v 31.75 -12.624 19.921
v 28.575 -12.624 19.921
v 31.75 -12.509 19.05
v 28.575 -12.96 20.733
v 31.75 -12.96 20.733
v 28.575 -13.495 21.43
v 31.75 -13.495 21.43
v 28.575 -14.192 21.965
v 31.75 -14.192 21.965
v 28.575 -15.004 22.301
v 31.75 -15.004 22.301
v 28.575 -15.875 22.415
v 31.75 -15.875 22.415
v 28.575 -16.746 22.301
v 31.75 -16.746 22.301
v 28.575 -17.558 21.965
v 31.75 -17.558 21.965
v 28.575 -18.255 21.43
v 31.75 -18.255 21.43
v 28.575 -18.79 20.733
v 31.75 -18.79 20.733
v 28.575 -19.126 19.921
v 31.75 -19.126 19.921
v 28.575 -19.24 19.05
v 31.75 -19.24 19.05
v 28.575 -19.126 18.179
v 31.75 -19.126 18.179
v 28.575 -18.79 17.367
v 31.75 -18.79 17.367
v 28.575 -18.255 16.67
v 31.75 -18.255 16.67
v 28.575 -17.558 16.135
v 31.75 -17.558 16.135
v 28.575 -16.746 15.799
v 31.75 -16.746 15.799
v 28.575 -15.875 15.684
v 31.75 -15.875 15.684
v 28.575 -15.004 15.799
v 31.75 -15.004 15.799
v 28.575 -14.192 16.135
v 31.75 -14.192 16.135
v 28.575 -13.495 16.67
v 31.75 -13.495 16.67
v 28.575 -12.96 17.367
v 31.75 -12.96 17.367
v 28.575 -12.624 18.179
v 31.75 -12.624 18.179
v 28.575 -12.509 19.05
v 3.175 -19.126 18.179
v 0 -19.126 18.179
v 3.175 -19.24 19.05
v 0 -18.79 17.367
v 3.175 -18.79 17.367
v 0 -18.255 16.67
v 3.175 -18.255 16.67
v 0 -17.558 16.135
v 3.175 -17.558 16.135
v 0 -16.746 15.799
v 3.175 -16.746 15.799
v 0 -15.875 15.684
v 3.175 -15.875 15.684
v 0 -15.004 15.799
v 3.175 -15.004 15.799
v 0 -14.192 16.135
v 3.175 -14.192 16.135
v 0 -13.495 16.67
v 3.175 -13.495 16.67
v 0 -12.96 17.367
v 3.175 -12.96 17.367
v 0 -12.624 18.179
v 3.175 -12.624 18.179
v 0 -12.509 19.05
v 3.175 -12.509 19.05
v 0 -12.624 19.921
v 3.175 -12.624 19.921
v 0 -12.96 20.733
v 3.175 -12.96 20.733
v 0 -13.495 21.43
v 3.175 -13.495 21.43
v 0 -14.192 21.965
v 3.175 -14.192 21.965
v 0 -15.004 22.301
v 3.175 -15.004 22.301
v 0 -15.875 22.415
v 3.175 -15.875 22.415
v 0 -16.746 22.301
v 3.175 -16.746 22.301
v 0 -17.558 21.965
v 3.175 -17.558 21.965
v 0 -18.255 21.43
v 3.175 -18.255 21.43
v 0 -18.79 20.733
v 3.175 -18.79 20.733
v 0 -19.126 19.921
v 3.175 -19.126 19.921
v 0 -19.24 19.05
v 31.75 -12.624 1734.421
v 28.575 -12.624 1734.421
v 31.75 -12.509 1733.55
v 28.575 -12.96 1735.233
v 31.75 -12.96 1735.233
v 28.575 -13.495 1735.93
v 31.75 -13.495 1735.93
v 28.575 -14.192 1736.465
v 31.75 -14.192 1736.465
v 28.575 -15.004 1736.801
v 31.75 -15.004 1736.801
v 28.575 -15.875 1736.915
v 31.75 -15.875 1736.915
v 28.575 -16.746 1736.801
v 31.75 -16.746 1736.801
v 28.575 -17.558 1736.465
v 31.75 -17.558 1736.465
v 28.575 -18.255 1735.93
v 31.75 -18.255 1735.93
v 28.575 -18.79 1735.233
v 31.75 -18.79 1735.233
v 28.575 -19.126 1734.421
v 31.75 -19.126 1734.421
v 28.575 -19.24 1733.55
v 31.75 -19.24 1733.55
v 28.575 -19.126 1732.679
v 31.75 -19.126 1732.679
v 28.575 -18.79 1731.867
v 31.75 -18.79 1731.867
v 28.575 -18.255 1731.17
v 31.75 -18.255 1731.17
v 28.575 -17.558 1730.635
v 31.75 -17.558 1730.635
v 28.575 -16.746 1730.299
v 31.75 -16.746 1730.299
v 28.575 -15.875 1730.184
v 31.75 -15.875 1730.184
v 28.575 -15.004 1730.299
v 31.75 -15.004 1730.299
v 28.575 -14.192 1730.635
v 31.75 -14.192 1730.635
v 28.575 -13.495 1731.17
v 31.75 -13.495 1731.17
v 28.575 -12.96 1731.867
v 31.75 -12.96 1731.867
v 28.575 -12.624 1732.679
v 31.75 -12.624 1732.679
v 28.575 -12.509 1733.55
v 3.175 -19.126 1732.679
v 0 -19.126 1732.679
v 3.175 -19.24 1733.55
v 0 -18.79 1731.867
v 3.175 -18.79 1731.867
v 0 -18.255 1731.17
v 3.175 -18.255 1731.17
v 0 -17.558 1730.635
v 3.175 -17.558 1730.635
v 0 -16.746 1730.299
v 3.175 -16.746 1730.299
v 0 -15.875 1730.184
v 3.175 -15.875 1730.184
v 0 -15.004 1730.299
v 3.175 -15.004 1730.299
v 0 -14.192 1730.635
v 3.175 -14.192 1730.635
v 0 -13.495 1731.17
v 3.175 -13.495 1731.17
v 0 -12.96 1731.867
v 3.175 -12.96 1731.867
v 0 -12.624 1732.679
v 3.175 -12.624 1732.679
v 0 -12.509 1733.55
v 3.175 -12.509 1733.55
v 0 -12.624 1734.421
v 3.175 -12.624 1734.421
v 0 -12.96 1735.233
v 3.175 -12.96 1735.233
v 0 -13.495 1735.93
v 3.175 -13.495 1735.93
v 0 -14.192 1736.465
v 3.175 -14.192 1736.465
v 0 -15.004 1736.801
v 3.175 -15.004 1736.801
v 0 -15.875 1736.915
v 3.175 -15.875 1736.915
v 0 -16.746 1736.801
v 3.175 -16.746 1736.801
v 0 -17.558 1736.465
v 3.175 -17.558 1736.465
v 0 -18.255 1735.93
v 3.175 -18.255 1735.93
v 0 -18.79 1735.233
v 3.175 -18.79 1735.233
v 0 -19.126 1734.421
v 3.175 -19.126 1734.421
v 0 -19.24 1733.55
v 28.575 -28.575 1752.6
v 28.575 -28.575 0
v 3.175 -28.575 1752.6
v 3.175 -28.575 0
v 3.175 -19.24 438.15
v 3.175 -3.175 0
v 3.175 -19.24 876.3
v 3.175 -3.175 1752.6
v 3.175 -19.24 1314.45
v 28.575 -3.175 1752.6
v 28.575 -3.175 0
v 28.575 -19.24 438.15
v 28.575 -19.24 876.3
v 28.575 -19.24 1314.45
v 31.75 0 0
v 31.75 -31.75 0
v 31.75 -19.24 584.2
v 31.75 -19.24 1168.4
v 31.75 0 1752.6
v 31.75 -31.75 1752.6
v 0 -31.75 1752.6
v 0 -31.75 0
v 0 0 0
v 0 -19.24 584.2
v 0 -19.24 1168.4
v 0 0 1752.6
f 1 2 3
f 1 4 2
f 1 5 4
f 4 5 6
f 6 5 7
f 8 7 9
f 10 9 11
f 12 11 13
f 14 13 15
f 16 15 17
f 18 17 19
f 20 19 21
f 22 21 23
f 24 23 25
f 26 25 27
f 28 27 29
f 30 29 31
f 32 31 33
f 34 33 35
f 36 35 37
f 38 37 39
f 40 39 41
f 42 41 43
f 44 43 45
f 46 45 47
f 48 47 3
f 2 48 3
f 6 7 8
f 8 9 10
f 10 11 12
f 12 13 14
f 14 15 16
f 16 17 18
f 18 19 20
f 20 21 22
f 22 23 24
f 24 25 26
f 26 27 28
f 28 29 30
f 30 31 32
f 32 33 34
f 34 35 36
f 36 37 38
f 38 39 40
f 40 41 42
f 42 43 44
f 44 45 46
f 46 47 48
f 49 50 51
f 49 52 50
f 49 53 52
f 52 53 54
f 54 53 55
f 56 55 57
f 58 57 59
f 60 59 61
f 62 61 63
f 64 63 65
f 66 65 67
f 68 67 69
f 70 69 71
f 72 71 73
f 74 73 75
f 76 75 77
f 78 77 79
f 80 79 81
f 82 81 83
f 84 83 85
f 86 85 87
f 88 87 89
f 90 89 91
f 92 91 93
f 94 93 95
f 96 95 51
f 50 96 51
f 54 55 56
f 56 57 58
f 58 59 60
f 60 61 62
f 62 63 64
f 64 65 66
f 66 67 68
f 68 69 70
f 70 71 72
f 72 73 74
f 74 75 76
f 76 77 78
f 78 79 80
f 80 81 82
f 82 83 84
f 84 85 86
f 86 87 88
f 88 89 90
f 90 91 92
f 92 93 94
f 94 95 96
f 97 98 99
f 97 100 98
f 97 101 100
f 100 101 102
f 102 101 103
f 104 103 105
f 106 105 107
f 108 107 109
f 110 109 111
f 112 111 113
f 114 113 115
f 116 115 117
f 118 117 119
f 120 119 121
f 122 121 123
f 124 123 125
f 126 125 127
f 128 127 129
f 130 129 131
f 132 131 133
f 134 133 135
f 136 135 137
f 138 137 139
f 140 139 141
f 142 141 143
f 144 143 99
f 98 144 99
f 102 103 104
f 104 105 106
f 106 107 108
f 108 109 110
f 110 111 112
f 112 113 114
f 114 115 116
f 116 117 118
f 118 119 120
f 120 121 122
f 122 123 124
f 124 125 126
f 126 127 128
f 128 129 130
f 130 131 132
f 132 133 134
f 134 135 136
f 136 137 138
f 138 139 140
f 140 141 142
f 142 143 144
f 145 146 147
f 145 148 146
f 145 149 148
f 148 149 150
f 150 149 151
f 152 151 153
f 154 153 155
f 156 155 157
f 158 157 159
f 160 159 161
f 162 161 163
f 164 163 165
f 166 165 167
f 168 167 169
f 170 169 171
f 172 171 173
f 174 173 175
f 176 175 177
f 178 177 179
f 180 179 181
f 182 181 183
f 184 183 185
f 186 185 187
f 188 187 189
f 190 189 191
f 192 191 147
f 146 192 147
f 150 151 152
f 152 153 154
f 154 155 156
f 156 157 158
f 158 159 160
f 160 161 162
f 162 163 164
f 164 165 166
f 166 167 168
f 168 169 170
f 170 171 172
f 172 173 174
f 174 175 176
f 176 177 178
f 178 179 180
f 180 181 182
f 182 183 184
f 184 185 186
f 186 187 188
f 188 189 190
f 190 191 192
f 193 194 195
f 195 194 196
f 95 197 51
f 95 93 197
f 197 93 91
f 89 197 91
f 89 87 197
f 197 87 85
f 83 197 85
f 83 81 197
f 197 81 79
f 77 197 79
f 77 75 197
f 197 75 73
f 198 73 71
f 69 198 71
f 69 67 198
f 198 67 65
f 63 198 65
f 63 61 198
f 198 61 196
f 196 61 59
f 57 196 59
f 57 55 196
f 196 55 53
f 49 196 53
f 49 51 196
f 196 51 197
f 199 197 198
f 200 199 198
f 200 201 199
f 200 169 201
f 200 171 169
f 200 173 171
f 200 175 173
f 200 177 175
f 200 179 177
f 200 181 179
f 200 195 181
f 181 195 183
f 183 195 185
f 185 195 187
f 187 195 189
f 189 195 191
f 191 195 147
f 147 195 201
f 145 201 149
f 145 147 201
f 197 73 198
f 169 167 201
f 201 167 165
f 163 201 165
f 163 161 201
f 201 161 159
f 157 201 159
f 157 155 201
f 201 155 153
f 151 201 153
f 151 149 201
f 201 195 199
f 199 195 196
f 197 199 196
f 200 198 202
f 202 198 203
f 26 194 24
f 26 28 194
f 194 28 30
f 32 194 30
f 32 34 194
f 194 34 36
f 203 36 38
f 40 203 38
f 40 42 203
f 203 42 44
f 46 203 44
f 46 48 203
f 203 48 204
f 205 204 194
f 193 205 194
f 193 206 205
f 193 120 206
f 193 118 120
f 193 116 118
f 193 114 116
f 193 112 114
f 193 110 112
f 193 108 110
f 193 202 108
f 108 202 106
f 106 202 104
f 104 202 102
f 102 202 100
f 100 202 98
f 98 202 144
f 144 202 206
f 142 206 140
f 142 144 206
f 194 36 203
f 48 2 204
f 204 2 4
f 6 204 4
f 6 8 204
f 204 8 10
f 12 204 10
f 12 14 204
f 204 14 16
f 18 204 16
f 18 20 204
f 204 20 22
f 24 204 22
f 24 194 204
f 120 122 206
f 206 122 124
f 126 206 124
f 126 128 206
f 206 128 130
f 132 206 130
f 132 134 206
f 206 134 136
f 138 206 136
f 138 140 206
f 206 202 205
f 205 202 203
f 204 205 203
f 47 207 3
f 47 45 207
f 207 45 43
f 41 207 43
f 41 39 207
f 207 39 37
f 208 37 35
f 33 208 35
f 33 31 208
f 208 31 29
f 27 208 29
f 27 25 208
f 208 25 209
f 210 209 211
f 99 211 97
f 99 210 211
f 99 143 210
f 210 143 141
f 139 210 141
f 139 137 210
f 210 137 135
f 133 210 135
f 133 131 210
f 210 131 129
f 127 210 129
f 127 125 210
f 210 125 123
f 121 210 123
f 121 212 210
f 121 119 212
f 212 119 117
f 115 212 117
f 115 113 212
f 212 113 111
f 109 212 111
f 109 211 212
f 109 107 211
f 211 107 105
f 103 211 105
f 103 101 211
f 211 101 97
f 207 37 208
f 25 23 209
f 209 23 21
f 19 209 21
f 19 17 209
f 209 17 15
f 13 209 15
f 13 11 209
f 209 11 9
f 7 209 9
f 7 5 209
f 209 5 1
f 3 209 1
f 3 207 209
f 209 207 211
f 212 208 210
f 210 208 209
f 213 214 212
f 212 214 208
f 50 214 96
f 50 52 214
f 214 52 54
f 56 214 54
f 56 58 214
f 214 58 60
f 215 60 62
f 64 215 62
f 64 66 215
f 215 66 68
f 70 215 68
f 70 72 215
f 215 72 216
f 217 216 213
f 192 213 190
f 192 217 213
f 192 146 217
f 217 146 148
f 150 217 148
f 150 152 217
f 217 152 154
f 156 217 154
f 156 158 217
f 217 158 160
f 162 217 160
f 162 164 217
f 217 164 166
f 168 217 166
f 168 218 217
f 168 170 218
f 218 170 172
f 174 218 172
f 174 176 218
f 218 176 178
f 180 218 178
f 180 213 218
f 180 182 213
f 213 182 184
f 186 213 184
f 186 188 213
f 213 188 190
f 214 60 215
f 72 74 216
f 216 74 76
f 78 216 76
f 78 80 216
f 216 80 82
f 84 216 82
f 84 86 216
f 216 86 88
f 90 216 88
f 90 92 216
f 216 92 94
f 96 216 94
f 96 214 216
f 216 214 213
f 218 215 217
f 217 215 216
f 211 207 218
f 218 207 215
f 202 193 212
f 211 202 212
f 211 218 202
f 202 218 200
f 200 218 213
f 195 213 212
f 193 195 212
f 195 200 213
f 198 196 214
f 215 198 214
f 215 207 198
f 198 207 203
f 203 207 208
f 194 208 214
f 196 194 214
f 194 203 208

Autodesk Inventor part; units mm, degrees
ref_plane "YZ Plane" through (0, 0, 0) normal (1, 0, 0) x (0, 1, 0)
ref_plane "XZ Plane" through (0, 0, 0) normal (0, 1, 0) x (-1, 0, 0)
ref_plane "XY Plane" through (0, 0, 0) normal (0, 0, 1) x (1, 0, 0)
sketch "Sketch1" plane through (0, 0, 0) normal (0, 0, 1) x (1, 0, 0)
  line L0 (0, 0) -> (31.75, 0)
  line L1 (31.75, 0) -> (31.75, -31.75)
  line L2 (31.75, -31.75) -> (0, -31.75)
  line L3 (0, -31.75) -> (0, 0)
  line L4 (28.575, -28.575) -> (28.575, -3.175)
  line L5 (28.575, -3.175) -> (3.175, -3.175)
  line L6 (3.175, -3.175) -> (3.175, -28.575)
  line L7 (3.175, -28.575) -> (28.575, -28.575)
  dimension "d0" = 31.75
  dimension "d1" = 3.175
extrude "Extrusion1" add sketch "Sketch1" along normal blind 1752.6
hole "Hole1" at (31.75, -15.875, 1733.55) direction (-1, 0, 0) diameter 6.731 end through all
hole "Hole2" at (31.75, -15.875, 19.05) direction (-1, 0, 0) diameter 6.731 end through all
properties part number "GE-12090-01"
